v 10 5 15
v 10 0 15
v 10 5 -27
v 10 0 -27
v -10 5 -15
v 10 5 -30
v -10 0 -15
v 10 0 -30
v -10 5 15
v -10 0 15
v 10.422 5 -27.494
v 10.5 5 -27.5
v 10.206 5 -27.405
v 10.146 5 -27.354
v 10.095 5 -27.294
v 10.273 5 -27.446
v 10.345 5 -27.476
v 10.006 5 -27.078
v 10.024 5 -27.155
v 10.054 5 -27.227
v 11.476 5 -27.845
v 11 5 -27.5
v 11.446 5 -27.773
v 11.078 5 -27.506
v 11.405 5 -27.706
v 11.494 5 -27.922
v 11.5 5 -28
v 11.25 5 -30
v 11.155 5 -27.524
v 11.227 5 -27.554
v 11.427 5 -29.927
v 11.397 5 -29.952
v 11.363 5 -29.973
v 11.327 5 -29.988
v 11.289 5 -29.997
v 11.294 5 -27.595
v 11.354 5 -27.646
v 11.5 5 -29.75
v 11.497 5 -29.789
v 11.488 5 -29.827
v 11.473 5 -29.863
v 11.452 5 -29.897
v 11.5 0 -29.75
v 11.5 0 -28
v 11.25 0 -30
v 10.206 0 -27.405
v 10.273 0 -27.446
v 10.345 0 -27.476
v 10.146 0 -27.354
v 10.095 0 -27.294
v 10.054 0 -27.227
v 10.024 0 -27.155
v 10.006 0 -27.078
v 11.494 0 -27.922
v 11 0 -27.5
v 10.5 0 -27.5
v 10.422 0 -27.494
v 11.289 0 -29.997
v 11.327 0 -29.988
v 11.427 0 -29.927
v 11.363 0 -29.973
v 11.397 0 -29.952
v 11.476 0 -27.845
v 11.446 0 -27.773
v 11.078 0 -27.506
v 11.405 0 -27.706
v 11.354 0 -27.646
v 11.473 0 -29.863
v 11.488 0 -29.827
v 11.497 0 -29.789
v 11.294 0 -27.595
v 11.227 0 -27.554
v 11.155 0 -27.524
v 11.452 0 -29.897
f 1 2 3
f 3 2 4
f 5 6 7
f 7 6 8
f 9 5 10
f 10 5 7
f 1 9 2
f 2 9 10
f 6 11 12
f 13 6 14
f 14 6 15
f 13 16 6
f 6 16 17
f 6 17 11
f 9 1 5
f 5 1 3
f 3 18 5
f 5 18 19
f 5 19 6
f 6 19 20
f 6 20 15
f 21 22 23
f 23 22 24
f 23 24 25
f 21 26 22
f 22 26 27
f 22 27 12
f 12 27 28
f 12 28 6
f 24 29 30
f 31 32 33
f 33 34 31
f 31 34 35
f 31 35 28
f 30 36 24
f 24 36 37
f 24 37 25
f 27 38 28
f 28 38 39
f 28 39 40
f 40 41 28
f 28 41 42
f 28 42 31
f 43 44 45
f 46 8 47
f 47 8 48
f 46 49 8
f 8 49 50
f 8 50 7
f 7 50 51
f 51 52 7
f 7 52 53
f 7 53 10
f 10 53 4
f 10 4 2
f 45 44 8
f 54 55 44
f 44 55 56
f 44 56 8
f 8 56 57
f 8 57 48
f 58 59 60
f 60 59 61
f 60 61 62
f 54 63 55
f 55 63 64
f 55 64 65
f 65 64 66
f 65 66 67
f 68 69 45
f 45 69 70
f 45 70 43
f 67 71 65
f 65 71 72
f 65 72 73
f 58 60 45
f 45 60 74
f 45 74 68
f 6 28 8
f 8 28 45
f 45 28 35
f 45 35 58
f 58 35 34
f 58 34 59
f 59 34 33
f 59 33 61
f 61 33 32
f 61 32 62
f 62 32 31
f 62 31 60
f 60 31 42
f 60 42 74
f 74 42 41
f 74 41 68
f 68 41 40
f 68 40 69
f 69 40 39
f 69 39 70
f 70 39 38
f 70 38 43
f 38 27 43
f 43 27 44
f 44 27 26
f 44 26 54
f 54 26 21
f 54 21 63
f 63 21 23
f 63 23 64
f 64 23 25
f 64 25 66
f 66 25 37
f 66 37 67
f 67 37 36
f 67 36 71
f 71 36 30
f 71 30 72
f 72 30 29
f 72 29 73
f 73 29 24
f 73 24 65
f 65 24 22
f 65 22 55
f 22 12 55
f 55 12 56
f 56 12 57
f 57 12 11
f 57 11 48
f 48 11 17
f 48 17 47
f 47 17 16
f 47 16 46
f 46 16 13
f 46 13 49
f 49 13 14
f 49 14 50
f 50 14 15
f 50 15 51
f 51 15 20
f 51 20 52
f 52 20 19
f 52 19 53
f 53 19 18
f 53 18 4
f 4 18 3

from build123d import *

# Parameters (mm, degrees)
BOSS_EXTRUDE4_DEPTH = 5
BOSS_EXTRUDE5_DEPTH = 5


with BuildPart() as part:
    # Sketch4 → Boss-Extrude4 (new body)
    with BuildSketch(Plane(origin=(0, 0, 0), x_dir=(1, 0, 0), z_dir=(0, 1, 0))):
        Polygon((-10, 15), (10, 30), (10, 15), (10, -15), (-10, -15), align=None)
    extrude(amount=BOSS_EXTRUDE4_DEPTH)

    # Sketch6 → Boss-Extrude5 (add)
    with BuildSketch(Plane(origin=(0, 5, 0), x_dir=(1, 0, 0), z_dir=(0, 1, 0))):
        with BuildLine():
            Line((10, 30), (11.25, 30))
            ThreePointArc((11.25, 30), (11.426776695, 29.926776695), (11.5, 29.75))
            Line((11.5, 29.75), (11.5, 28))
            ThreePointArc((11.5, 28), (11.353553391, 27.646446609), (11, 27.5))
            Line((11, 27.5), (10.5, 27.5))
            ThreePointArc((10.5, 27.5), (10.146446609, 27.353553391), (10, 27))
            Line((10, 27), (10, 30))
        make_face()
    extrude(amount=-BOSS_EXTRUDE5_DEPTH)


solid = part.part
